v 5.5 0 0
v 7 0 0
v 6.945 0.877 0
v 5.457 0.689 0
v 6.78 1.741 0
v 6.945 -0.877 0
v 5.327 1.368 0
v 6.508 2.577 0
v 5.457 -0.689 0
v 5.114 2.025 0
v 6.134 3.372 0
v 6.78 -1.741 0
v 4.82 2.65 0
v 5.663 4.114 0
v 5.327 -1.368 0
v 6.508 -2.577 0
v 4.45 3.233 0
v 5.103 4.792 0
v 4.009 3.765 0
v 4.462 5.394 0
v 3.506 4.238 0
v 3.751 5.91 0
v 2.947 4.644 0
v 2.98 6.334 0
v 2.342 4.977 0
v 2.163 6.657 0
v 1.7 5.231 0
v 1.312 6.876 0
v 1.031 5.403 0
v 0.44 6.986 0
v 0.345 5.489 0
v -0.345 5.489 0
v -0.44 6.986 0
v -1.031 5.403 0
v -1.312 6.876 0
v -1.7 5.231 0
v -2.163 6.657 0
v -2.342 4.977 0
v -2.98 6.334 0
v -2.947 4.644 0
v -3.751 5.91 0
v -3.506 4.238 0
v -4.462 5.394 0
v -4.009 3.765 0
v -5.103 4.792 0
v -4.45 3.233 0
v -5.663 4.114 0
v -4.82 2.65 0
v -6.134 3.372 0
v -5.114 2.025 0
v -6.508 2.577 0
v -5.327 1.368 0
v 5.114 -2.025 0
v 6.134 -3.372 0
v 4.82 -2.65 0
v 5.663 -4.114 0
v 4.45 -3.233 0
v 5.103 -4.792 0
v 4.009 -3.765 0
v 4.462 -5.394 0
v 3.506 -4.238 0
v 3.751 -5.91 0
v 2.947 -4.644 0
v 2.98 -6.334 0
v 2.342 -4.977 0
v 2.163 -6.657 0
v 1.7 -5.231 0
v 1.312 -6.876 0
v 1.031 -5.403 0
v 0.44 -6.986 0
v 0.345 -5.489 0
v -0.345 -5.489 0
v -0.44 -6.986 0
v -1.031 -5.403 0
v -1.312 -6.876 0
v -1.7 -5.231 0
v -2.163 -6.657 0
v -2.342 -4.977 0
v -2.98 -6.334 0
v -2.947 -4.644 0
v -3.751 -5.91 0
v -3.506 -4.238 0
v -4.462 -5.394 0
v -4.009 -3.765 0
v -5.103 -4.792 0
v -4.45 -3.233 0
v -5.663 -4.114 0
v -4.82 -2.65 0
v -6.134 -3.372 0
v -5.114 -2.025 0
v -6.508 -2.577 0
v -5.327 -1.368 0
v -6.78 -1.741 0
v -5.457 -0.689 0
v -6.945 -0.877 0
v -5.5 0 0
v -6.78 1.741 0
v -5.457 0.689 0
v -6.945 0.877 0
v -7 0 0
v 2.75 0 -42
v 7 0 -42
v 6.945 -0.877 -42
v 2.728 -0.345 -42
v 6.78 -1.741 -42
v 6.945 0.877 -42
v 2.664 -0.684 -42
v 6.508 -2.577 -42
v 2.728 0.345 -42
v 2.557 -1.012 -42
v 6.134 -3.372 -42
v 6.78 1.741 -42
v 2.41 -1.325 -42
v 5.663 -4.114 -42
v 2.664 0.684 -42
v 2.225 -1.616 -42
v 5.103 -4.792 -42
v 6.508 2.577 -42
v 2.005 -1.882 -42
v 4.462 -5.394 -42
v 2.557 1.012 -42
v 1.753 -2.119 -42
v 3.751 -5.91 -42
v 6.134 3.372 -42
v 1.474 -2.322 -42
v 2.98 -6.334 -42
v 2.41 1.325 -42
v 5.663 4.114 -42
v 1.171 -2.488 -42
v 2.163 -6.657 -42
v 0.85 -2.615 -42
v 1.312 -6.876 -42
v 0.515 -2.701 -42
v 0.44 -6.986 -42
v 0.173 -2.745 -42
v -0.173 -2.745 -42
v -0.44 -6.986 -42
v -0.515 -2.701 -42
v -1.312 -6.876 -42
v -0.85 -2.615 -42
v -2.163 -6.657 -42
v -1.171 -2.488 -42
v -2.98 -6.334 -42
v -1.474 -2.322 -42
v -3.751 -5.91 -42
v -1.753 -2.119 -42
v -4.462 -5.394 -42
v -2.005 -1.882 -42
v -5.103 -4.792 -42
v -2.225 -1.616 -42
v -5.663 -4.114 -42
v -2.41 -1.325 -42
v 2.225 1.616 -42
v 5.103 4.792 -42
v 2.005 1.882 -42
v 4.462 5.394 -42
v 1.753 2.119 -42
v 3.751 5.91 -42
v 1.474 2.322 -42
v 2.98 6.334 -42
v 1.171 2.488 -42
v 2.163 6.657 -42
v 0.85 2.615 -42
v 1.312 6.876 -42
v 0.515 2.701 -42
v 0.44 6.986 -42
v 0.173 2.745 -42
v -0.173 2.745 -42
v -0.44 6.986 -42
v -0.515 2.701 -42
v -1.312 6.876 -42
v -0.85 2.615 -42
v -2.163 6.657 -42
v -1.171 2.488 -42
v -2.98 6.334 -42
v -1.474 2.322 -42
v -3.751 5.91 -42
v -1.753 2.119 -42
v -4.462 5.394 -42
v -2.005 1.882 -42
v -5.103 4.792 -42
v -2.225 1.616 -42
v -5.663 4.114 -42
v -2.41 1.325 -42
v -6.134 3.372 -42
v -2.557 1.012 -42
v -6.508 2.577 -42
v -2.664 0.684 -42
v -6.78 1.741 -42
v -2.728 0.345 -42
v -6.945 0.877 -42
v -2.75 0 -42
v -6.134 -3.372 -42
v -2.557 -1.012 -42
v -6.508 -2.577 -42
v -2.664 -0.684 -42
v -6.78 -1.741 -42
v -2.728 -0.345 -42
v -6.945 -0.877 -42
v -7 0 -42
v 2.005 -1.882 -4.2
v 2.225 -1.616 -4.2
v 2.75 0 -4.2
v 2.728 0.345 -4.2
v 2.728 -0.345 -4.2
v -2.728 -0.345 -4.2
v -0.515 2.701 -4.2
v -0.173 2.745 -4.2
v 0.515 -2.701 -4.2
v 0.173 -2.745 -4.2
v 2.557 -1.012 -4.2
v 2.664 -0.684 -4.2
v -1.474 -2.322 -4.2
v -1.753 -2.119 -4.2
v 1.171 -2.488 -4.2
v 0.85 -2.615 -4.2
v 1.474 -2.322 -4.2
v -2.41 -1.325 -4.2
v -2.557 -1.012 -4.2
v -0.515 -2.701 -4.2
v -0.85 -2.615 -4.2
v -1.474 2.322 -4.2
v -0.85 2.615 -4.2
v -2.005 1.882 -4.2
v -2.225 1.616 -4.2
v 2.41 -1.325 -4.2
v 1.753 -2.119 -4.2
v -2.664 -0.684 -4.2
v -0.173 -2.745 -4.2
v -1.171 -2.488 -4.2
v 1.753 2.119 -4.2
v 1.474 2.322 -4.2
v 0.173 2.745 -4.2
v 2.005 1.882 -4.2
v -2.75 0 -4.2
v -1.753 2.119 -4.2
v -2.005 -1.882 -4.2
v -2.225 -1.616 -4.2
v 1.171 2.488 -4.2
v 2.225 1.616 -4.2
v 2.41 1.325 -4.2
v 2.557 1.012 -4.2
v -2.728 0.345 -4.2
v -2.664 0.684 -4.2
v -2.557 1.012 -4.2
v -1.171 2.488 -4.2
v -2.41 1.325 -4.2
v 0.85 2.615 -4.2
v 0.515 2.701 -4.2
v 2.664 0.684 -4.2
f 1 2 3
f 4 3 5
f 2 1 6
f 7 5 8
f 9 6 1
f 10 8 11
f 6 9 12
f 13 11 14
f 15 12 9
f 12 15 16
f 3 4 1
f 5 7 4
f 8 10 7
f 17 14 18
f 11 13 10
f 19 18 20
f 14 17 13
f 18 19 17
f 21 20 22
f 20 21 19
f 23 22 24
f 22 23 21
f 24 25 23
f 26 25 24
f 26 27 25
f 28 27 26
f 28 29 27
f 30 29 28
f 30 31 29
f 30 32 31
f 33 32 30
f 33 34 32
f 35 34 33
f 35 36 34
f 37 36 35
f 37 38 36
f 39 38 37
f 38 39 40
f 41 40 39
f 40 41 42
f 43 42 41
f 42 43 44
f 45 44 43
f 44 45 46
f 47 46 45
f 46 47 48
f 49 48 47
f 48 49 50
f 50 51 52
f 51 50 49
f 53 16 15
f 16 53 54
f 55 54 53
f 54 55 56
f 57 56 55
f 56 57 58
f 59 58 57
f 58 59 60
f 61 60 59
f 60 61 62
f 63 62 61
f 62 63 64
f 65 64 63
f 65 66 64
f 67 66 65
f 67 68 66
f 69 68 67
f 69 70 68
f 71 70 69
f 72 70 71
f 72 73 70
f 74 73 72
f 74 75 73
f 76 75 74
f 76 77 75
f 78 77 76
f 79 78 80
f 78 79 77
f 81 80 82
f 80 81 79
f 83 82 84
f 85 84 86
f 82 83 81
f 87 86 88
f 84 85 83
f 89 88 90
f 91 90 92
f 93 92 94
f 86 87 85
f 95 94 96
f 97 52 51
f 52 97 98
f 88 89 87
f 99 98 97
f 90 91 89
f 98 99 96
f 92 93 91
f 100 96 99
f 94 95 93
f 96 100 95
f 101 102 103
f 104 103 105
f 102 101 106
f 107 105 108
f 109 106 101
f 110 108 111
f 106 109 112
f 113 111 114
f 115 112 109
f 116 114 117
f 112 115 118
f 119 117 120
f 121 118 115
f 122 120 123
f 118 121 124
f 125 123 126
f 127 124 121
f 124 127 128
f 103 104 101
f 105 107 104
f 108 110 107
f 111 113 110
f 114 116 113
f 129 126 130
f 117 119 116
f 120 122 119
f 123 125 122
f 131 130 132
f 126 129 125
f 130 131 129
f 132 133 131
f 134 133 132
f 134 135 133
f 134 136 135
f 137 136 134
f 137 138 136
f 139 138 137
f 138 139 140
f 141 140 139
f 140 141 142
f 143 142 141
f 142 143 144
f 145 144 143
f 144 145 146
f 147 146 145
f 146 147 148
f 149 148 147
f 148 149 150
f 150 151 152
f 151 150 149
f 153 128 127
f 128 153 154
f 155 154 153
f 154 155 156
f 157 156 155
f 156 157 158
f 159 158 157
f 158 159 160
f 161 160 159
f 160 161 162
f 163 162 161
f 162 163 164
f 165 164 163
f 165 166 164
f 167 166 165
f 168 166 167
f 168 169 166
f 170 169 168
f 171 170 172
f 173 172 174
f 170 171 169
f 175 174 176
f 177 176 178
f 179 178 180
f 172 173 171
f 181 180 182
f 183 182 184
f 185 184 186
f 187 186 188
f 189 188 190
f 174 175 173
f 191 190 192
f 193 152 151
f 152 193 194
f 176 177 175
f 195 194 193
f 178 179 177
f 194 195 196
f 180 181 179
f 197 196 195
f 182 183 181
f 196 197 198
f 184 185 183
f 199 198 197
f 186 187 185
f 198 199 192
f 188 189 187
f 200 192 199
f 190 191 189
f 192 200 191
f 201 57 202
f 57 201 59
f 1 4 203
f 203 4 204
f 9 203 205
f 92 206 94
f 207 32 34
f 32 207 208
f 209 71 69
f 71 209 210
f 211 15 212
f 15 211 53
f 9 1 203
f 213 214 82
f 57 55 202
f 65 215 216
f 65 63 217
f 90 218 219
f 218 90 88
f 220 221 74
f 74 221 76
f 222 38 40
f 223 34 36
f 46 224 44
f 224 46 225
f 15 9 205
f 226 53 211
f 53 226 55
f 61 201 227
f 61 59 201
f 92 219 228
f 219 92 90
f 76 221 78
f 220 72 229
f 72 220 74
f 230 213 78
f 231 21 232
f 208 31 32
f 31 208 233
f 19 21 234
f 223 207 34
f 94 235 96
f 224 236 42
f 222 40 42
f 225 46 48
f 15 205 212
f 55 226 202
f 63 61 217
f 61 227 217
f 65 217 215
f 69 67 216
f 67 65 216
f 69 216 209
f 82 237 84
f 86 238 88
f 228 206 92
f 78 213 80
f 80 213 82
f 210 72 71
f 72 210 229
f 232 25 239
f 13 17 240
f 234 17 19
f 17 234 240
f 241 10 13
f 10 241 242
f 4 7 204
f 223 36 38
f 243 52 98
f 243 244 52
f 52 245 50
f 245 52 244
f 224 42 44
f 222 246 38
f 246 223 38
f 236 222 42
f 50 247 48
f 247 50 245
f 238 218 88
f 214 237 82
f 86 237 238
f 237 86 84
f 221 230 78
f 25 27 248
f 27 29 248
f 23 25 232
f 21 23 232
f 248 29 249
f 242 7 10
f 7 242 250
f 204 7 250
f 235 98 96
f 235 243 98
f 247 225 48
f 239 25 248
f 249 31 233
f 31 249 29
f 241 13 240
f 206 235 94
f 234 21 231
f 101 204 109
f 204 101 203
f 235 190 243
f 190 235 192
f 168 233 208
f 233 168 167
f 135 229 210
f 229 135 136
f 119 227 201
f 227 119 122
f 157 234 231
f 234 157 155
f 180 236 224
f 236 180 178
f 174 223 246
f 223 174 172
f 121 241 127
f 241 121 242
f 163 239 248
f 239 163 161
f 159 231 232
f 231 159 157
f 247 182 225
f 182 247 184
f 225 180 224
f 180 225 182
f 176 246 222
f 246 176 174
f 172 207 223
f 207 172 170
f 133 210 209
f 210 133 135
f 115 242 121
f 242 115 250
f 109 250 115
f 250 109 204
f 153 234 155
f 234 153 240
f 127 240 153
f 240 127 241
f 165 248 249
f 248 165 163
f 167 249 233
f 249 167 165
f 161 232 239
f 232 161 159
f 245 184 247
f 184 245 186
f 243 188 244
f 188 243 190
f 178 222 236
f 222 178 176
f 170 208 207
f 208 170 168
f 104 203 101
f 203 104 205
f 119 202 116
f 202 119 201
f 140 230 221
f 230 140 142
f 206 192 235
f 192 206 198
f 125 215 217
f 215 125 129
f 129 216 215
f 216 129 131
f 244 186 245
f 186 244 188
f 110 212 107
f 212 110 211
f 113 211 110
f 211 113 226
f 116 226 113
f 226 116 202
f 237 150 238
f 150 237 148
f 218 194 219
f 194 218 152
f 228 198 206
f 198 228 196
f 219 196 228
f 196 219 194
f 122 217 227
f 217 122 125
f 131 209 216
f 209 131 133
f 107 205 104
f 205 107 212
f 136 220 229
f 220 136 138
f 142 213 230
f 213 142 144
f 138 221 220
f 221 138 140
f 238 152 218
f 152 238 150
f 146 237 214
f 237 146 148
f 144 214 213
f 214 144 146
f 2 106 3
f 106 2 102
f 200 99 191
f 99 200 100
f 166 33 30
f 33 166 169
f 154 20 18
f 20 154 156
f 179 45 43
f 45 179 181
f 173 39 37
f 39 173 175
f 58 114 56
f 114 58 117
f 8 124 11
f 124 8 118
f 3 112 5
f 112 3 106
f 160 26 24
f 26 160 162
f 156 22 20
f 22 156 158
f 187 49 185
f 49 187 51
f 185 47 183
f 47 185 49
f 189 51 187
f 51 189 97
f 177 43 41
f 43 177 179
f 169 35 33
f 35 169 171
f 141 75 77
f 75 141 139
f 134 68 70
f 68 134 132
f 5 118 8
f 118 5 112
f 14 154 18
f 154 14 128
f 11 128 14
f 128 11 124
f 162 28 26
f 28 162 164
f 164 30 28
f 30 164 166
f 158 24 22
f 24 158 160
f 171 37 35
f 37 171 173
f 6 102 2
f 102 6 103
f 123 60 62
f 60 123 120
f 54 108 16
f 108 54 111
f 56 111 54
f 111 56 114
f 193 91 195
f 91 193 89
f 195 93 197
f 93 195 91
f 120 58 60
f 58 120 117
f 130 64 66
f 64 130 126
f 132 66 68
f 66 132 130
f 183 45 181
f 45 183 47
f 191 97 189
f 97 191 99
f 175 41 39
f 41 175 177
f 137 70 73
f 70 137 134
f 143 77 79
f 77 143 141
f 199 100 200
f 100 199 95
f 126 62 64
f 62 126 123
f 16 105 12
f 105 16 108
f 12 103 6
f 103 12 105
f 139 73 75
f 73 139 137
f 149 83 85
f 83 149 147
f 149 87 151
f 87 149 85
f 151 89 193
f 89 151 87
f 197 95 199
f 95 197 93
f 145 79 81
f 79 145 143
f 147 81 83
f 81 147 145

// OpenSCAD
$fn = 50;


difference() {
	union() {
		translate(v = [0, 0, -42.0000000000]) {
			cylinder(h = 42, r = 7.0000000000);
		}
		cylinder(h = 0, r = 13.0000000000);
	}
	union() {
		translate(v = [0, 0, 0]) {
			rotate(a = [0, 0, 0]) {
				difference() {
					union() {
						#translate(v = [0, 0, -42.0000000000]) {
							cylinder(h = 42, r = 2.2500000000);
						}
						#translate(v = [0, 0, -4.2000000000]) {
							cylinder(h = 4.2000000000, r1 = 2.7500000000, r2 = 5.5000000000);
						}
						#translate(v = [0, 0, -42.0000000000]) {
							cylinder(h = 42, r = 2.7500000000);
						}
						#translate(v = [0, 0, -42.0000000000]) {
							cylinder(h = 42, r = 2.2500000000);
						}
					}
					union();
				}
			}
		}
	}
}
